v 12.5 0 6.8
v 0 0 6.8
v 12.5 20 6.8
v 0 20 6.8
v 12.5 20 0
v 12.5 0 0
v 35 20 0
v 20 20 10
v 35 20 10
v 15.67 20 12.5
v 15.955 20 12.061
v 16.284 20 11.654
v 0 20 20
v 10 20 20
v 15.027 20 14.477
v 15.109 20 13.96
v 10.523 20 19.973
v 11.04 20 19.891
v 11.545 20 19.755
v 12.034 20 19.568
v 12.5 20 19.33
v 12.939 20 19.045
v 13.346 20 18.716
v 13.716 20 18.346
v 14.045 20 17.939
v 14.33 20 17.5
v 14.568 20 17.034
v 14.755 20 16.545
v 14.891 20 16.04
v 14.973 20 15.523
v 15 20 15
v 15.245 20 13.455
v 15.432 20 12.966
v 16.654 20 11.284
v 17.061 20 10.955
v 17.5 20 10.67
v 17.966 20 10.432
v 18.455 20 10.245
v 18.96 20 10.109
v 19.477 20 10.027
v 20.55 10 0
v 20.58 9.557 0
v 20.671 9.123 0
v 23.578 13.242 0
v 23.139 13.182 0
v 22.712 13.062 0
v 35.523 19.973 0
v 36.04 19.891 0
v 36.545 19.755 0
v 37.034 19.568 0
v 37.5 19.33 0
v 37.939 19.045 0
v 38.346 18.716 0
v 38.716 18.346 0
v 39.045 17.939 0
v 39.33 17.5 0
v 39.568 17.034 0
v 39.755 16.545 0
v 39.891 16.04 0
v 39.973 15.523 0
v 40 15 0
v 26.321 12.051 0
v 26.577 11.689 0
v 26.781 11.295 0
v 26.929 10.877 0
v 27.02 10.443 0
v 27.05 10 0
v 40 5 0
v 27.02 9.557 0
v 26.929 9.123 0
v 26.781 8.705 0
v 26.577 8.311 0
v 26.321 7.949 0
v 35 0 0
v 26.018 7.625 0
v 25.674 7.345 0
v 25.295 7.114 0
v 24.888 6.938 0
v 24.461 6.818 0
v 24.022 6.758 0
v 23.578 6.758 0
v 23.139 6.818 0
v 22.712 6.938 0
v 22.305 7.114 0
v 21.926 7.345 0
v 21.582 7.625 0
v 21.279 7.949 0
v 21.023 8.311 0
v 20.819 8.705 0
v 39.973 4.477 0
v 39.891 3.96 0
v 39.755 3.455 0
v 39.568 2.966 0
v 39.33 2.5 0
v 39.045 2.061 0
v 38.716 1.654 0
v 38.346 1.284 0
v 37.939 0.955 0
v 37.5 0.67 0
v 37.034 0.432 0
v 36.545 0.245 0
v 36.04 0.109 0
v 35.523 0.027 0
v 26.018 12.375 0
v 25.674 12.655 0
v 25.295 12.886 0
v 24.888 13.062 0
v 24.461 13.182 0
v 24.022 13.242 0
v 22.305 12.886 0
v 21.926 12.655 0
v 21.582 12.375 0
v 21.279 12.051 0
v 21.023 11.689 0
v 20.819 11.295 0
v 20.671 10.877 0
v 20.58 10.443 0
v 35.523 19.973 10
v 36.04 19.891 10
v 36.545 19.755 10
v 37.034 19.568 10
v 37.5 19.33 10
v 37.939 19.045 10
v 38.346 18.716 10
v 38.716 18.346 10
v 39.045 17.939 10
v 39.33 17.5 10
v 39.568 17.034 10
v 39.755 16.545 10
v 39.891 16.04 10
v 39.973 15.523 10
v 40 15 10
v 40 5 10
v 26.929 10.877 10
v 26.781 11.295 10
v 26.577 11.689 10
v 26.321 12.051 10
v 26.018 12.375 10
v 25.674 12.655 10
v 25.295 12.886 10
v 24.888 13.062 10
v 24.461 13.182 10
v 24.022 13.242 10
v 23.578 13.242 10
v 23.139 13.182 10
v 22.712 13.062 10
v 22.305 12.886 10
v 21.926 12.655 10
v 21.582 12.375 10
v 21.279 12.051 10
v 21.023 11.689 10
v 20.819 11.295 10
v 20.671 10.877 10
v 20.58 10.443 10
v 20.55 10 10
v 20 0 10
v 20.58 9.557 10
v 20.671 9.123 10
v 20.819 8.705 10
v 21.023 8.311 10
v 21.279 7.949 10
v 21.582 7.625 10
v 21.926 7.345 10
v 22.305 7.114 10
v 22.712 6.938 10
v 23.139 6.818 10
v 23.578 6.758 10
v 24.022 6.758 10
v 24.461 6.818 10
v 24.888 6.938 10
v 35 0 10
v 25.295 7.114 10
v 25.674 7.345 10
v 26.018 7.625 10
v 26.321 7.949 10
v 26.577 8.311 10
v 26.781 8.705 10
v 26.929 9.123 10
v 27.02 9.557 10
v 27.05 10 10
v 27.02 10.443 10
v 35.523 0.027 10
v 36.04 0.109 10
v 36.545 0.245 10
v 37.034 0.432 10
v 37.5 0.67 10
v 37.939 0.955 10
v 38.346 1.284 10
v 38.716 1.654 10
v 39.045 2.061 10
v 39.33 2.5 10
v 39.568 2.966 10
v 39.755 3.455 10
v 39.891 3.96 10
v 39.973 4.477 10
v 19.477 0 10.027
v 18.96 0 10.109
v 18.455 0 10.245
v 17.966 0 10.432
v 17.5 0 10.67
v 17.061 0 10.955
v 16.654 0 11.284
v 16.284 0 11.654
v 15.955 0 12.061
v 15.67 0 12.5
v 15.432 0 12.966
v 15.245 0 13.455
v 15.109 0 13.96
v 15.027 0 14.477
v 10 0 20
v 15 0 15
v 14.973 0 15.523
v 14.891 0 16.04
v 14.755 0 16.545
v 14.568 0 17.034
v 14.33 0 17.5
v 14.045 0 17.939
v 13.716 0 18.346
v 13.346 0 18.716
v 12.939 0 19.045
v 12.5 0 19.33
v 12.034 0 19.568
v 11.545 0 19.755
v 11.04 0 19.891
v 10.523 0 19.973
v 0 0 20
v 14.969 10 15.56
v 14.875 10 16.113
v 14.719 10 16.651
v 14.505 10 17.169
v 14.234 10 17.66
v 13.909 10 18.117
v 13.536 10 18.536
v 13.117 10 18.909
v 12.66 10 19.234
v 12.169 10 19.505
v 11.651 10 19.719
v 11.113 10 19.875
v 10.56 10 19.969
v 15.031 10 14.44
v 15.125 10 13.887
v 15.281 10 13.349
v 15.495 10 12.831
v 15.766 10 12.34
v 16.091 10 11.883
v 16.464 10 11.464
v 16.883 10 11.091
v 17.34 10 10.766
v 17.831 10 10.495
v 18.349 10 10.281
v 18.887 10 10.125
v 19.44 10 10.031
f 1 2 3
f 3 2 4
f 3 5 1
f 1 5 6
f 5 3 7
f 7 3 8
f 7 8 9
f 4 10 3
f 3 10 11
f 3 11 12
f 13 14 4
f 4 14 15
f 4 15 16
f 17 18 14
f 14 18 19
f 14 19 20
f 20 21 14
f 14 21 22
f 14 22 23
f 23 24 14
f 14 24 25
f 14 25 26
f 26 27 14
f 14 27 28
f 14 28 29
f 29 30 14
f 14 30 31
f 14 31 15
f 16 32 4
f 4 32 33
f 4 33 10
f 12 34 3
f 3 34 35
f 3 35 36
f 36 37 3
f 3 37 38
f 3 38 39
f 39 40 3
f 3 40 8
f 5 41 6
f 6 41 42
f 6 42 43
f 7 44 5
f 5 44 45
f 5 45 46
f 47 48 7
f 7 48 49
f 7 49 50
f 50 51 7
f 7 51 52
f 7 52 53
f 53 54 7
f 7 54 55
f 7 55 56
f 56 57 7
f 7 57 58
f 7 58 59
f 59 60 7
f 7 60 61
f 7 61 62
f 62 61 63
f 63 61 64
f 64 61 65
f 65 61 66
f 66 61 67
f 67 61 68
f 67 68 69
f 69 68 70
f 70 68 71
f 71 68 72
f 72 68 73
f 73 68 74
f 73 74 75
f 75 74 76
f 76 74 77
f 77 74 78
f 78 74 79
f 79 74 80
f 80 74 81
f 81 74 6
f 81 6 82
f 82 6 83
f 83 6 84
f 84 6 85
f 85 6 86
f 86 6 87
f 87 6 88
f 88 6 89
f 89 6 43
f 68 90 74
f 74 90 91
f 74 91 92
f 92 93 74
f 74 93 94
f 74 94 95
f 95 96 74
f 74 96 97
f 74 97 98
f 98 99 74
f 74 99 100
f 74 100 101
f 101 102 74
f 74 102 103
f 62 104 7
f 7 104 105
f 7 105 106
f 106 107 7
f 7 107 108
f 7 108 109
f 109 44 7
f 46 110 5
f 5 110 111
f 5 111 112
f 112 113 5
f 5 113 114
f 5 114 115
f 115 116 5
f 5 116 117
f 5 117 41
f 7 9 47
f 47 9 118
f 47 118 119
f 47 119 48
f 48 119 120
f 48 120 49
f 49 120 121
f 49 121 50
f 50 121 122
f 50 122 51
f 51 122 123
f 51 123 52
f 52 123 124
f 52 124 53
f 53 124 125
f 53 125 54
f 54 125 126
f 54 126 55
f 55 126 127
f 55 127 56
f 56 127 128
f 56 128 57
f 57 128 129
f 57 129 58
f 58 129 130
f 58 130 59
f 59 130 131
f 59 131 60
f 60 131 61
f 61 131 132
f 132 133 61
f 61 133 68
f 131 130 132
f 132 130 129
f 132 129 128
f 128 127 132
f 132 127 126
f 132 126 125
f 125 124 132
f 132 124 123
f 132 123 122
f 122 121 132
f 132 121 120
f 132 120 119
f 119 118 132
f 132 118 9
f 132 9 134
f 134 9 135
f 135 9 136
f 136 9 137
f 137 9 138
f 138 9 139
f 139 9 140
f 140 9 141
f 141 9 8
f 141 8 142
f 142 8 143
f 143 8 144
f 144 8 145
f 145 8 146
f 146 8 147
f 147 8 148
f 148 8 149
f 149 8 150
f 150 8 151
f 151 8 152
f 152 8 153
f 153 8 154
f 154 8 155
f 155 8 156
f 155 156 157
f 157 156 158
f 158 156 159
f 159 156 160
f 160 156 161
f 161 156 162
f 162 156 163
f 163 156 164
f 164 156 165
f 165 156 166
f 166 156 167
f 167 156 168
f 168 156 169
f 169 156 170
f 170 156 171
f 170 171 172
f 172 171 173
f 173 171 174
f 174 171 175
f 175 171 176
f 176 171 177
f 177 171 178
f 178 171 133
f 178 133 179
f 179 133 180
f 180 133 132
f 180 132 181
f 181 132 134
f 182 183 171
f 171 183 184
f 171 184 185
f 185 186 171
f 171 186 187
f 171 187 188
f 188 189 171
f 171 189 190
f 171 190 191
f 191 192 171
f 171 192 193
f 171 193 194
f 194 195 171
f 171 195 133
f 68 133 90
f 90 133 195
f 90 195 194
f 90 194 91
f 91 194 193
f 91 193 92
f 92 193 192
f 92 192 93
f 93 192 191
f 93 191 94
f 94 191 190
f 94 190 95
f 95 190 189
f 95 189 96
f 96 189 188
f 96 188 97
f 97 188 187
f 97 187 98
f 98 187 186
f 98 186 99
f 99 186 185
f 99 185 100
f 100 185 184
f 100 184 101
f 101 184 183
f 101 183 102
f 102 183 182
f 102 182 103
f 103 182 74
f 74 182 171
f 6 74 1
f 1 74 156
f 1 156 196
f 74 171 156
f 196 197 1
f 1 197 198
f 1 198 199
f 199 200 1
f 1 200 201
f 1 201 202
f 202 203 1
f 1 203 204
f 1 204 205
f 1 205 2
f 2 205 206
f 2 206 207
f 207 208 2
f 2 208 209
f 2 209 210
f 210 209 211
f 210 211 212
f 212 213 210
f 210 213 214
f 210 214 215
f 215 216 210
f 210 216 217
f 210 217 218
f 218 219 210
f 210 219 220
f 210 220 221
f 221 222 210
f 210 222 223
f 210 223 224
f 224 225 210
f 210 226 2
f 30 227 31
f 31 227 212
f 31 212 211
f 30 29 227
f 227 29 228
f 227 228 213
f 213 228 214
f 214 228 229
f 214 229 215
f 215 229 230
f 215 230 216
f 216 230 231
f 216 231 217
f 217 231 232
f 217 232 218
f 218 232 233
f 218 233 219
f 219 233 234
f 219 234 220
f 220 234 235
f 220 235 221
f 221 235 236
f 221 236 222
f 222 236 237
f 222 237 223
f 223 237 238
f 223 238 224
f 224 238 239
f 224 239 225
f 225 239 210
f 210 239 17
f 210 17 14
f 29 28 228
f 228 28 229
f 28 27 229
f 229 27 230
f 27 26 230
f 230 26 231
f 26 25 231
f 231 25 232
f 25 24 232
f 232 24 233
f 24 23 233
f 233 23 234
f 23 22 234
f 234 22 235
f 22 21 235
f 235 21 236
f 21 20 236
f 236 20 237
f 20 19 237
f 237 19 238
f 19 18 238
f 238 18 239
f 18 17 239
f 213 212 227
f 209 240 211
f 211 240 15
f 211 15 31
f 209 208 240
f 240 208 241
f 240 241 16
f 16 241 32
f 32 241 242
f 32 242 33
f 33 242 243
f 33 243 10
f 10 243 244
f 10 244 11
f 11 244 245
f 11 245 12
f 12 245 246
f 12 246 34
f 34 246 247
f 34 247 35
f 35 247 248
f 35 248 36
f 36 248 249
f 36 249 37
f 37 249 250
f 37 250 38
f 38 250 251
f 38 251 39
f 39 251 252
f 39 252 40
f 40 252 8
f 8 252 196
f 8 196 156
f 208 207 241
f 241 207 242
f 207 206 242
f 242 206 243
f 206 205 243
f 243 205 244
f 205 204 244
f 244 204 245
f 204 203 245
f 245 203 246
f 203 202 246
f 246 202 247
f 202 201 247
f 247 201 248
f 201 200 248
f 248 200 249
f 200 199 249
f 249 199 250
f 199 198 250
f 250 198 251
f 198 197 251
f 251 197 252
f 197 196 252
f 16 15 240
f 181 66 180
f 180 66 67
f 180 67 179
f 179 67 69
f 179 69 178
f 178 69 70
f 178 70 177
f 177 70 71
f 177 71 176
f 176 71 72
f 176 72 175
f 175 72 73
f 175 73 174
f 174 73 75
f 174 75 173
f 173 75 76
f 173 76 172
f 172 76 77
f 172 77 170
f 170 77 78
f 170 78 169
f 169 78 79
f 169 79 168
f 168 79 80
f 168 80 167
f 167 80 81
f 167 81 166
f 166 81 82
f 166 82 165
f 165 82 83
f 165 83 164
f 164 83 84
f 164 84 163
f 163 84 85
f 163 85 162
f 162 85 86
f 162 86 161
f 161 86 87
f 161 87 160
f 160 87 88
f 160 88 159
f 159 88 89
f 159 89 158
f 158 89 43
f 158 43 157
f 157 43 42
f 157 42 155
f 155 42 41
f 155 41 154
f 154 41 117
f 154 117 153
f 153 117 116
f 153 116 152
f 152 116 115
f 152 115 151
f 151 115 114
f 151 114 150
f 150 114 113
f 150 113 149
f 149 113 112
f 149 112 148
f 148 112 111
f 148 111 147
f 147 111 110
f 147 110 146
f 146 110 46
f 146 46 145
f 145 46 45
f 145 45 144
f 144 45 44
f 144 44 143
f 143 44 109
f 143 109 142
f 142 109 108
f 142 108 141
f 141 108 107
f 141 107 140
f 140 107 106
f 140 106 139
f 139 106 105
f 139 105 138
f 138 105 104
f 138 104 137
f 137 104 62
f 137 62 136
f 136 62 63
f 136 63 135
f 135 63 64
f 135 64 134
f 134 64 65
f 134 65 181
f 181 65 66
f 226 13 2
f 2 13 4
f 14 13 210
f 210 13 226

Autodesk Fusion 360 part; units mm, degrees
sketch "Sketch1" plane through (0, 0, 0) normal (0, 0, 1) x (1, 0, 0)
  line L0 (0, 0) -> (40, 0)
  line L1 (40, 0) -> (40, 20)
  line L2 (40, 20) -> (0, 20)
  line L3 (0, 20) -> (0, 0)
  dimension "d1" = 40
  dimension "d2" = 20
extrude "Extrude1" add sketch "Sketch1" along normal blind 20
sketch "Sketch2" plane through (0, 0, 0) normal (0, 0, -1) x (1, 0, 0)
  line L0 (0, 0) -> (0, -20)
  line L1 (0, -20) -> (40, -20)
  line L2 (40, -20) -> (40, 0)
  line L3 (40, 0) -> (0, 0)
  line L4 (0, 0) -> (10, 0)
  line L5 (10, 0) -> (10, -20)
  line L6 (10, -20) -> (0, -20)
  line L7 (0, -20) -> (0, 0)
  line L8 (10, -10) -> (23.8, -10)
  circle A0 centre (23.8, -10) radius 3.25
  dimension "d5" = 10
  dimension "d6" = 20
  dimension "d7" = 13.8
  dimension "d8" = 6.5
extrude "Extrude2" cut sketch "Sketch2" against normal blind 7.8 contours L0 L1 L3 L4 L5 L6 L7 | A0
extrude "Extrude3" cut 1 faces at (24.5115, 8.6722, 7.8) along direction (0, 0, 1) blind 210
sketch "Sketch3" plane through (0, 0, 20) normal (0, 0, 1) x (-1, 0, 0)
  circle A0 centre (-23.8, -10) radius 3.25
  line L0 (0, -20) -> (0, 0)
  line L1 (0, 0) -> (-40, 0)
  line L2 (-40, 0) -> (-40, -20)
  line L3 (-40, -20) -> (0, -20)
  line L4 (-40, -20) -> (-15, -20)
  line L5 (-15, -20) -> (-15, 0)
  line L6 (-15, 0) -> (-40, 0)
  line L7 (-40, 0) -> (-40, -20)
  dimension "d13" = 25
  dimension "d14" = 20
extrude "Extrude4" cut sketch "Sketch3" against normal blind 10 contours L1 L2 L3 L4 L5 L6 L7
fillet "Fillet1" radius 5 2 edges at (15, 10, 10) (15, 10, 20)
fillet "Fillet2" radius 5 2 edges at (40, 0, 5) (40, 20, 5)
sketch "Sketch4" plane through (0, 0, 0) normal (0, 1, 0) x (1, 0, 0)
extrude "Extrude5" cut 1 faces at (10, 6.6667, 2.6) along direction (1, 0, 0) blind 0.5
extrude "Extrude6" add 1 faces at (10.5, 6.6667, 2.6) along direction (-1, 0, 0) blind 0.5
sketch "Sketch5" plane through (0, 0, 20) normal (0, 0, 1) x (-1, 0, 0)
  line L0 (-10, 0) -> (-10, -20)
  line L1 (-10, -20) -> (0, -20)
  line L2 (0, -20) -> (0, 0)
  line L3 (0, 0) -> (-10, 0)
sketch "Sketch6" plane through (0, 0, 0) normal (0, -1, 0) x (1, 0, 0)
  line L0 (10, 0) -> (35, 0)
  line L1 (35, 0) -> (35, 10)
  line L2 (35, 10) -> (20, 10)
  arc A0 (15, 15) -> (20, 10) centre (20, 15) ccw
  arc A1 (15, 15) -> (10, 20) centre (10, 15) ccw
  line L3 (10, 20) -> (0, 20)
  line L4 (0, 20) -> (0, 7.8)
  line L5 (0, 7.8) -> (10, 7.8)
  line L6 (10, 7.8) -> (10, 0)
sketch "Sketch7" plane through (0, 0, 0) normal (0, -1, 0) x (1, 0, 0)
sketch "Sketch8" plane through (0, 0, 10) normal (0, 0, 1) x (-1, 0, 0)
  arc A0 (-40, -15) -> (-35, -20) centre (-35, -15) ccw
  line L0 (-35, -20) -> (-20, -20)
  line L1 (-20, -20) -> (-20, 0)
  line L2 (-20, 0) -> (-35, 0)
  arc A1 (-35, 0) -> (-40, -5) centre (-35, -5) ccw
  line L3 (-40, -5) -> (-40, -15)
  circle A2 centre (-23.8, -10) radius 3.25
extrude "Extrude7" cut 1 faces at (10, 6.6667, 2.6) along direction (1, 0, 0) blind 2.5
extrude "Extrude8" add 1 faces at (4.1667, 6.6667, 7.8) along direction (0, 0, -1) blind 1
